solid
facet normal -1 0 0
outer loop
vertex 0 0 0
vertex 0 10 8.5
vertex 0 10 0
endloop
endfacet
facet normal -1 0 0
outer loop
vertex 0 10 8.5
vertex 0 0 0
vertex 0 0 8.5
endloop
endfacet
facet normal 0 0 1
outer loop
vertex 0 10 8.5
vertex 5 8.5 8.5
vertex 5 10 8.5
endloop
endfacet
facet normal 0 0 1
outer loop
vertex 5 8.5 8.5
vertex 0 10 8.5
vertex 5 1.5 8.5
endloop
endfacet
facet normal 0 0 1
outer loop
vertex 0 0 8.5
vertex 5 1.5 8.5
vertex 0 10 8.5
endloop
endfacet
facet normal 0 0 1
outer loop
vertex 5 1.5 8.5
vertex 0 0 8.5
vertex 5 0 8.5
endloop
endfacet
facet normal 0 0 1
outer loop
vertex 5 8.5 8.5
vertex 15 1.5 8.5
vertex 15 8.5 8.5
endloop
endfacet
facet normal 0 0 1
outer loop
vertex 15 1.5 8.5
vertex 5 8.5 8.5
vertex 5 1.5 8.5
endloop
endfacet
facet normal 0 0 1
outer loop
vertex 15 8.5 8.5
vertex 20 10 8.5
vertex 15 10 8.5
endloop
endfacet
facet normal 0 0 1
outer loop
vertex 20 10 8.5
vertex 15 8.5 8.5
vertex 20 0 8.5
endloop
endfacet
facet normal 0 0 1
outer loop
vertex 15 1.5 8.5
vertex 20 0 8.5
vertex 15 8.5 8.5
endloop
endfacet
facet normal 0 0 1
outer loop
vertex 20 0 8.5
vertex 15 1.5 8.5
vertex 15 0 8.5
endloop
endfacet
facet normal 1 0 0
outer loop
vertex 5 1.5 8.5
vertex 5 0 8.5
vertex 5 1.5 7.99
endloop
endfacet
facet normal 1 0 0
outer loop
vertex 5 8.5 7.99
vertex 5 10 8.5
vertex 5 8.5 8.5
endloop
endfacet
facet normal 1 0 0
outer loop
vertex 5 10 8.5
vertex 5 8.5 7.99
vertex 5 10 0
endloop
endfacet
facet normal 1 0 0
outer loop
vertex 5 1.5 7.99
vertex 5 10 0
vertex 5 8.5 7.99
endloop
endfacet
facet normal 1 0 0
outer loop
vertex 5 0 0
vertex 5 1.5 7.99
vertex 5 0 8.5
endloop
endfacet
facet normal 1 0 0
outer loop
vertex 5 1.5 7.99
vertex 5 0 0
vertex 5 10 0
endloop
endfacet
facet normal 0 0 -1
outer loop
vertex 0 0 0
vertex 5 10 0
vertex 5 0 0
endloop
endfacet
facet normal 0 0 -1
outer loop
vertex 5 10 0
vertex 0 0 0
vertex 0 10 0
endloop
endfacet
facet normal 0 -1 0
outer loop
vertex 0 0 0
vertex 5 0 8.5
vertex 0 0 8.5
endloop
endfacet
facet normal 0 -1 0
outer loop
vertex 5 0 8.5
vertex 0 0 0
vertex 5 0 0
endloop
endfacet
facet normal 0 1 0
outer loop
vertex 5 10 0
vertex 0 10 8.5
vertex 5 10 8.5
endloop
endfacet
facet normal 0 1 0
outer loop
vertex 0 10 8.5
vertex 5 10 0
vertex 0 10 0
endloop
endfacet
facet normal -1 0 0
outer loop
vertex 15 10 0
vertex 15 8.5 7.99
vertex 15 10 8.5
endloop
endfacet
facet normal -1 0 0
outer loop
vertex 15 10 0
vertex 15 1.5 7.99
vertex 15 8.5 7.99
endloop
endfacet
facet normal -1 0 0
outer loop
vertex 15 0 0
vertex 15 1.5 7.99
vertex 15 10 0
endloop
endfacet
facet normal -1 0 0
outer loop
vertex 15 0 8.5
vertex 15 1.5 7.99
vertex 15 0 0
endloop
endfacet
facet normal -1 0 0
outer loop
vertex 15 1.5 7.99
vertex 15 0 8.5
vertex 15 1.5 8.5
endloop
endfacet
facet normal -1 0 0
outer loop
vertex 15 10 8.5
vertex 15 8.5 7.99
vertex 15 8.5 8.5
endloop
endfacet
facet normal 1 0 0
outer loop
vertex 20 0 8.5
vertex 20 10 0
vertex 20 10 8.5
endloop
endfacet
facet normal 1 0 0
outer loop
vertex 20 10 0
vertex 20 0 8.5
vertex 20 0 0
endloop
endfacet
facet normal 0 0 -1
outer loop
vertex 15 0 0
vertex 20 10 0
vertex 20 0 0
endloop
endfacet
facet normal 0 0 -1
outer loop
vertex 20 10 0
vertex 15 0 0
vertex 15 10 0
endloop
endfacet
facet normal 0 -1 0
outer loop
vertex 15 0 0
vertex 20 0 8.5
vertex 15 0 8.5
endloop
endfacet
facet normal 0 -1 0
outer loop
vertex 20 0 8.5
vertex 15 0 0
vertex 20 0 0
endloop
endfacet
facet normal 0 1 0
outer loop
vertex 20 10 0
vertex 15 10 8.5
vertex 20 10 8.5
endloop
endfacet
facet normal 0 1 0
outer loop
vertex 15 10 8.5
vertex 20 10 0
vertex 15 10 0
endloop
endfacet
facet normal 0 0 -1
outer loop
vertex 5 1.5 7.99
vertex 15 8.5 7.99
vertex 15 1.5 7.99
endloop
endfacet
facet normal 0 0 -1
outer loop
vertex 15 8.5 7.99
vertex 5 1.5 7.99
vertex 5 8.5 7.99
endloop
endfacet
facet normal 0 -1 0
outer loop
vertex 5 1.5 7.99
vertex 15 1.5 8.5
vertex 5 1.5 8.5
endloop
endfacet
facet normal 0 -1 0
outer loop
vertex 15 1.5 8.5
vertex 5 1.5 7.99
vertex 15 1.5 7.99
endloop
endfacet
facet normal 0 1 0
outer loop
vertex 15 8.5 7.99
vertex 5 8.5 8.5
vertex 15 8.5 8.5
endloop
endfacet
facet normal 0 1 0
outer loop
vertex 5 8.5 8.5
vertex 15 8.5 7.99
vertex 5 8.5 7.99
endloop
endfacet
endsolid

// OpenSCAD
bridgeLen = 10;
cube([5,10,.17*50]);
translate([bridgeLen+5,0,0]) cube([5,10,.17*50]);

translate([0,1.5,.17*47]) cube([bridgeLen+10,7,.17*3]);
